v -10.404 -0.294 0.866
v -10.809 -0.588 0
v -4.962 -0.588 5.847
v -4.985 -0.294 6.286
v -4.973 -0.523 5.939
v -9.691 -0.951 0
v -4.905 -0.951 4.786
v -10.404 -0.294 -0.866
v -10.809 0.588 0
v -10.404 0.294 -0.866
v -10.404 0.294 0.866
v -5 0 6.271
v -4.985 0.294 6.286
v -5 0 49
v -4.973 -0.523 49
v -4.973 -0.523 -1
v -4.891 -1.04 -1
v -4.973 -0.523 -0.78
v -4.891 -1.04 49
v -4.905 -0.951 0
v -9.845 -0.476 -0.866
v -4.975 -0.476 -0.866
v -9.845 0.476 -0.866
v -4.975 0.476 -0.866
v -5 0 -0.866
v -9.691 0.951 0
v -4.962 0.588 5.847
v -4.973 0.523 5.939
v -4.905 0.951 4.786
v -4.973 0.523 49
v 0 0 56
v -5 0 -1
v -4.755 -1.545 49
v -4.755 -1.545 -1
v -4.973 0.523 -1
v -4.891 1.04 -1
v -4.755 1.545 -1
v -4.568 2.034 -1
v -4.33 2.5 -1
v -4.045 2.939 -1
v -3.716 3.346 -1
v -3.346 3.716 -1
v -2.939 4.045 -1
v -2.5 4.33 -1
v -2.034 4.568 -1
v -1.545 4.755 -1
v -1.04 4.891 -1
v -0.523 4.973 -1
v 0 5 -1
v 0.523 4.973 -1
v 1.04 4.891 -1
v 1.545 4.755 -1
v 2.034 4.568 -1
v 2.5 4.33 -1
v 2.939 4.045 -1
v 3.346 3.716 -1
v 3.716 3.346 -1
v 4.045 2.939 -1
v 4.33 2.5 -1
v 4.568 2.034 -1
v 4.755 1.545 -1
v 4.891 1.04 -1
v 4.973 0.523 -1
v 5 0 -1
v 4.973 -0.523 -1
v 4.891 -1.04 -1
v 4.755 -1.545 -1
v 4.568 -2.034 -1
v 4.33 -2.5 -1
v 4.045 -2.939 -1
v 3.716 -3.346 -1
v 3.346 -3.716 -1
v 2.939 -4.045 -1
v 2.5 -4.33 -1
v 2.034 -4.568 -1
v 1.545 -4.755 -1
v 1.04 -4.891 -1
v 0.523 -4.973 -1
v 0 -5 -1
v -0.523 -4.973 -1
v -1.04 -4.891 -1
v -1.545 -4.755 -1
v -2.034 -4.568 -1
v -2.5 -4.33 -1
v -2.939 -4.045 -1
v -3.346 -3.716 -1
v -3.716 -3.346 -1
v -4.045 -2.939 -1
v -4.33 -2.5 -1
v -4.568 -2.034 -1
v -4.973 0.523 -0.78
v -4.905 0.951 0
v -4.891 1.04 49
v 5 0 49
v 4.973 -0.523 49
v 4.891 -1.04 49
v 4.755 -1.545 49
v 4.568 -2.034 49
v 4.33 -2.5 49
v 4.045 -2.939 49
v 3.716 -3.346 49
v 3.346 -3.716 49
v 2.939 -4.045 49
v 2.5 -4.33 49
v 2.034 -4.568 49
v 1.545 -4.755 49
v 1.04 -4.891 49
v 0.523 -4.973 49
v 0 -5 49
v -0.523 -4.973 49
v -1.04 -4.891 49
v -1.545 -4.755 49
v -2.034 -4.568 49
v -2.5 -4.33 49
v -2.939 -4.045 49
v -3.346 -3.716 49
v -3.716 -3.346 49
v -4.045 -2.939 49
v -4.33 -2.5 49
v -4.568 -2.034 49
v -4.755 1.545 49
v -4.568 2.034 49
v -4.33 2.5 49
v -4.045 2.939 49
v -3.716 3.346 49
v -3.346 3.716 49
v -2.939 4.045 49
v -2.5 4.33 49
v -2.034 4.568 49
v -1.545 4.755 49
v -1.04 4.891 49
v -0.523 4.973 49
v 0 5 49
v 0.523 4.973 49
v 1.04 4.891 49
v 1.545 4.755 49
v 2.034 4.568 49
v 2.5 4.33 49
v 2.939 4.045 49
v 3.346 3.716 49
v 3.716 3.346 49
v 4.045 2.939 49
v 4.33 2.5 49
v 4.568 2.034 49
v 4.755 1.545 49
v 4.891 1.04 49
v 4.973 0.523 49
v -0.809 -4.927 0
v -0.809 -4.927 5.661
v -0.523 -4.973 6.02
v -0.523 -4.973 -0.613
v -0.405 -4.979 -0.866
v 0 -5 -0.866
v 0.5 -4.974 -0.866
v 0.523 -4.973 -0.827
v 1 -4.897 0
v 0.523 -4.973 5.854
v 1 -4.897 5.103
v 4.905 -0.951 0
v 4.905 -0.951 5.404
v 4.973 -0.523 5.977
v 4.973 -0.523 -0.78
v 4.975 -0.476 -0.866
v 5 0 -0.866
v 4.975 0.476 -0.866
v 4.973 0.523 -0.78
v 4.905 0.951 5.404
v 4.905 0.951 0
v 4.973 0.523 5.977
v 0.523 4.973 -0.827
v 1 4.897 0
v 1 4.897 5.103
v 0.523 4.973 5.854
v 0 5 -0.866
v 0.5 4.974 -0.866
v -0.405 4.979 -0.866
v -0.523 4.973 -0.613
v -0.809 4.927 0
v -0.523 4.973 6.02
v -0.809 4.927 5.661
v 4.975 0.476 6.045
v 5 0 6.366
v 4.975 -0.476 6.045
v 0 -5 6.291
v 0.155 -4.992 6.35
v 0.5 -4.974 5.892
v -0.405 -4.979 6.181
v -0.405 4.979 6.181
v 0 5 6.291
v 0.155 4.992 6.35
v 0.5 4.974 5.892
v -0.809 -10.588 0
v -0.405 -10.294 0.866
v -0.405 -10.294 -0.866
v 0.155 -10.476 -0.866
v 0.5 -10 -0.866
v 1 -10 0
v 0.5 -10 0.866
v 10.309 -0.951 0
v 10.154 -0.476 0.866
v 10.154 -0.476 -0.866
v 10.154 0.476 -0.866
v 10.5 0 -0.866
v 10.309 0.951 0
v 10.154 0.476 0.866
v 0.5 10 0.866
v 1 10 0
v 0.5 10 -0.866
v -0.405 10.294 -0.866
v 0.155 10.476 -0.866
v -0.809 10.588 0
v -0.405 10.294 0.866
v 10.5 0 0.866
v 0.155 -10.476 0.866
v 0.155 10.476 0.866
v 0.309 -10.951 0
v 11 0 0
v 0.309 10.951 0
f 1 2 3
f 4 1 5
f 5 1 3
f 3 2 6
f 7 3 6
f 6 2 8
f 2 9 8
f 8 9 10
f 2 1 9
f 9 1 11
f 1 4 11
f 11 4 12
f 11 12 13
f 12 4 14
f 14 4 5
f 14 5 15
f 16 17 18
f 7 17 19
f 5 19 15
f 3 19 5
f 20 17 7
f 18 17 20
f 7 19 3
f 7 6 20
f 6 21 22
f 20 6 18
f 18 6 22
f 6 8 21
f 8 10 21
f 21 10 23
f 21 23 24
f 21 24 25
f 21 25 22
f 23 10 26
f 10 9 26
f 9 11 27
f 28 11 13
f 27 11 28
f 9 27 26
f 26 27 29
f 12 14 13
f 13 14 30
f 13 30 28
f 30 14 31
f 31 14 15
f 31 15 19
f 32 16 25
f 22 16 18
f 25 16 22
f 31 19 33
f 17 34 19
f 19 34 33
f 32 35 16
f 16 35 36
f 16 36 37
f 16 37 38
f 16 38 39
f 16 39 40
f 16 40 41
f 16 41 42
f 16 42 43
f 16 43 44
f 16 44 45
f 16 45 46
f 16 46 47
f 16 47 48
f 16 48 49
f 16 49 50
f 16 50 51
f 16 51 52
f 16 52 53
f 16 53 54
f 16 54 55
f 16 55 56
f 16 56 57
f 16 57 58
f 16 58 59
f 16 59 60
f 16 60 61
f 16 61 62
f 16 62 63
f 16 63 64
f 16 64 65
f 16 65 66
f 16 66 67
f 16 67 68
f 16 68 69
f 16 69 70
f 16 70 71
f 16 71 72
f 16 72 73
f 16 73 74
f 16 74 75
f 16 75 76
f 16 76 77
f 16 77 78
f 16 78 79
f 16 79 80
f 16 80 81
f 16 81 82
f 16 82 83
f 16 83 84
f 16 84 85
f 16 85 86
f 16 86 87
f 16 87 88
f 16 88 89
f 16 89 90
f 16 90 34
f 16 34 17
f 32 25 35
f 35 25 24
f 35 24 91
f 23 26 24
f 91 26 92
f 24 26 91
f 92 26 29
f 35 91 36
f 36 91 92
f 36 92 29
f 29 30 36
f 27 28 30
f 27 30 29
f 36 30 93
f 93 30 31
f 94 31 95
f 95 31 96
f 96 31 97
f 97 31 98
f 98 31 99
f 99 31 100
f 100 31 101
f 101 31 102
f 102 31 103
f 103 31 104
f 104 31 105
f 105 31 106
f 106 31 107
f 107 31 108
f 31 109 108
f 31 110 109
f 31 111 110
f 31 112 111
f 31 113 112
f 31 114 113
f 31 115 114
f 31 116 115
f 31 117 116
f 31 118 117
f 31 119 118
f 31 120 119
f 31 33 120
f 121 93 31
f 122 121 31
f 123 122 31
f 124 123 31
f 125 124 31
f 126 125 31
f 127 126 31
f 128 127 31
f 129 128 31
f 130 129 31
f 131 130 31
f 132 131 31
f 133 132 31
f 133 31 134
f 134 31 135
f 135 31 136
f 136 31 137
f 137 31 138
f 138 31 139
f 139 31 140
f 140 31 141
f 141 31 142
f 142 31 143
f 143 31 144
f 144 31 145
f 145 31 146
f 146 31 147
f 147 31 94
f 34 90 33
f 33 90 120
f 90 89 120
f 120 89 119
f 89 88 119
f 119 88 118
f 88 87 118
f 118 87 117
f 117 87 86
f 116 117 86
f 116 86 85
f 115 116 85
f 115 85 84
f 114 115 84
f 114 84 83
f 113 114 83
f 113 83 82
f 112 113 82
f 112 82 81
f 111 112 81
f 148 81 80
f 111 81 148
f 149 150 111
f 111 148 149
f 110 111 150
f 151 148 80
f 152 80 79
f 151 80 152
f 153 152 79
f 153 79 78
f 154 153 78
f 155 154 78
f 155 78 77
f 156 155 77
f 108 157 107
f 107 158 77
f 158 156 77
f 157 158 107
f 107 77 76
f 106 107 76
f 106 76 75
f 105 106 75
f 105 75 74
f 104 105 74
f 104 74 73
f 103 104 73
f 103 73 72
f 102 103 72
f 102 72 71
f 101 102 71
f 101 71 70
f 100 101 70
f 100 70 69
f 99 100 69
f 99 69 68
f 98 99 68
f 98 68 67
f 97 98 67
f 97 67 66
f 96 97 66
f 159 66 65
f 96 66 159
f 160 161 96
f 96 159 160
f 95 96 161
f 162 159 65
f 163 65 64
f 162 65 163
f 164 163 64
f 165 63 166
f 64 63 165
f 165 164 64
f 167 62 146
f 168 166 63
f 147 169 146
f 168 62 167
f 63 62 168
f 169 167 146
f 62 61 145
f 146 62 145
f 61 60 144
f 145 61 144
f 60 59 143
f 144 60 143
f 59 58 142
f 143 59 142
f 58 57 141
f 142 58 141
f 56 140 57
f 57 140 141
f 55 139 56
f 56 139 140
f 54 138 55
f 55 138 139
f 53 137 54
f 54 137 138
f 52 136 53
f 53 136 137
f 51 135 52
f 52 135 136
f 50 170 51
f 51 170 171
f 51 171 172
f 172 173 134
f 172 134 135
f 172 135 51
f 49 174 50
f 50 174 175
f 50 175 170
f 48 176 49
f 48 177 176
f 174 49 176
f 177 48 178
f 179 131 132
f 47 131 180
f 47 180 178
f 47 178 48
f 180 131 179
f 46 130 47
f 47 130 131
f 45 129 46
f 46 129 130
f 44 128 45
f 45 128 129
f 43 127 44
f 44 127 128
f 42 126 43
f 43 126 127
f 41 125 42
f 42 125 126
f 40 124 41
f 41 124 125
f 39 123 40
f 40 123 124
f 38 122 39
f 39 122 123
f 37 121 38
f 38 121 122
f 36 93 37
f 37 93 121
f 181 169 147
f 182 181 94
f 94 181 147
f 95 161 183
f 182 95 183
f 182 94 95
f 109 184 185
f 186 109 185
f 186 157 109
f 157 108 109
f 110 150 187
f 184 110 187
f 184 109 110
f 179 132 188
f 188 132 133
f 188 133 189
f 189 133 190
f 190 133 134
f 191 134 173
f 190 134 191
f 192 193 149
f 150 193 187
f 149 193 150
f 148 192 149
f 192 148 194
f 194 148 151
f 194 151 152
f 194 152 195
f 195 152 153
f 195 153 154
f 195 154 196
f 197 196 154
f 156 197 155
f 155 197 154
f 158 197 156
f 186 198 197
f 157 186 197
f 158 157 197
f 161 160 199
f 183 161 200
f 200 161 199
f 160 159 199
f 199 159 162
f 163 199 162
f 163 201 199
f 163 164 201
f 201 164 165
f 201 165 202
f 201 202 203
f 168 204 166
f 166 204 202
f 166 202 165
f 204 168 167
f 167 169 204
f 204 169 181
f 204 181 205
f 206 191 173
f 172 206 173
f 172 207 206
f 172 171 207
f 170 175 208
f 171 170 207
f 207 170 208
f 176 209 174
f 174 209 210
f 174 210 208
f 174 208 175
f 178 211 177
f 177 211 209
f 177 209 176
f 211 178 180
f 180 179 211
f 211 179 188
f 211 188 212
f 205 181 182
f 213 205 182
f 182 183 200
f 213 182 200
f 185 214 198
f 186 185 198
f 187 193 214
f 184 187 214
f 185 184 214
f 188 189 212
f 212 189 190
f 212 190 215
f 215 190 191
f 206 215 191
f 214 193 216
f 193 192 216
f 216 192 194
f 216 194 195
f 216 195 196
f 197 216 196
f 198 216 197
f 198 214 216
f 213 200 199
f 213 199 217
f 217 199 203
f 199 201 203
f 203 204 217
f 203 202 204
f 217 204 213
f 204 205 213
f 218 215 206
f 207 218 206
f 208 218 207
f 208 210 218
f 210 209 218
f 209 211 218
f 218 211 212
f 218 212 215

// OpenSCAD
translate([0,0,-1]) cylinder(r=5,h=50,$fn=60);

translate([0,0,49]) cylinder(r1=5,r2=0,h=7,$fn=60);

hull() {
	translate([0,0,0]) sphere(r=1);
	translate([0,-10,0]) sphere(r=1);
	translate([0,0,10]) sphere(r=1);
}

hull() {
	translate([0,0,0]) sphere(r=1);
	translate([0,10,0]) sphere(r=1);
	translate([0,0,10]) sphere(r=1);
}

hull() {
	translate([0,0,0]) sphere(r=1);
	translate([10,0,0]) sphere(r=1);
	translate([0,0,10]) sphere(r=1);
}

hull() {
	translate([0,0,0]) sphere(r=1);
	translate([-10,0,0]) sphere(r=1);
	translate([0,0,10]) sphere(r=1);
}
